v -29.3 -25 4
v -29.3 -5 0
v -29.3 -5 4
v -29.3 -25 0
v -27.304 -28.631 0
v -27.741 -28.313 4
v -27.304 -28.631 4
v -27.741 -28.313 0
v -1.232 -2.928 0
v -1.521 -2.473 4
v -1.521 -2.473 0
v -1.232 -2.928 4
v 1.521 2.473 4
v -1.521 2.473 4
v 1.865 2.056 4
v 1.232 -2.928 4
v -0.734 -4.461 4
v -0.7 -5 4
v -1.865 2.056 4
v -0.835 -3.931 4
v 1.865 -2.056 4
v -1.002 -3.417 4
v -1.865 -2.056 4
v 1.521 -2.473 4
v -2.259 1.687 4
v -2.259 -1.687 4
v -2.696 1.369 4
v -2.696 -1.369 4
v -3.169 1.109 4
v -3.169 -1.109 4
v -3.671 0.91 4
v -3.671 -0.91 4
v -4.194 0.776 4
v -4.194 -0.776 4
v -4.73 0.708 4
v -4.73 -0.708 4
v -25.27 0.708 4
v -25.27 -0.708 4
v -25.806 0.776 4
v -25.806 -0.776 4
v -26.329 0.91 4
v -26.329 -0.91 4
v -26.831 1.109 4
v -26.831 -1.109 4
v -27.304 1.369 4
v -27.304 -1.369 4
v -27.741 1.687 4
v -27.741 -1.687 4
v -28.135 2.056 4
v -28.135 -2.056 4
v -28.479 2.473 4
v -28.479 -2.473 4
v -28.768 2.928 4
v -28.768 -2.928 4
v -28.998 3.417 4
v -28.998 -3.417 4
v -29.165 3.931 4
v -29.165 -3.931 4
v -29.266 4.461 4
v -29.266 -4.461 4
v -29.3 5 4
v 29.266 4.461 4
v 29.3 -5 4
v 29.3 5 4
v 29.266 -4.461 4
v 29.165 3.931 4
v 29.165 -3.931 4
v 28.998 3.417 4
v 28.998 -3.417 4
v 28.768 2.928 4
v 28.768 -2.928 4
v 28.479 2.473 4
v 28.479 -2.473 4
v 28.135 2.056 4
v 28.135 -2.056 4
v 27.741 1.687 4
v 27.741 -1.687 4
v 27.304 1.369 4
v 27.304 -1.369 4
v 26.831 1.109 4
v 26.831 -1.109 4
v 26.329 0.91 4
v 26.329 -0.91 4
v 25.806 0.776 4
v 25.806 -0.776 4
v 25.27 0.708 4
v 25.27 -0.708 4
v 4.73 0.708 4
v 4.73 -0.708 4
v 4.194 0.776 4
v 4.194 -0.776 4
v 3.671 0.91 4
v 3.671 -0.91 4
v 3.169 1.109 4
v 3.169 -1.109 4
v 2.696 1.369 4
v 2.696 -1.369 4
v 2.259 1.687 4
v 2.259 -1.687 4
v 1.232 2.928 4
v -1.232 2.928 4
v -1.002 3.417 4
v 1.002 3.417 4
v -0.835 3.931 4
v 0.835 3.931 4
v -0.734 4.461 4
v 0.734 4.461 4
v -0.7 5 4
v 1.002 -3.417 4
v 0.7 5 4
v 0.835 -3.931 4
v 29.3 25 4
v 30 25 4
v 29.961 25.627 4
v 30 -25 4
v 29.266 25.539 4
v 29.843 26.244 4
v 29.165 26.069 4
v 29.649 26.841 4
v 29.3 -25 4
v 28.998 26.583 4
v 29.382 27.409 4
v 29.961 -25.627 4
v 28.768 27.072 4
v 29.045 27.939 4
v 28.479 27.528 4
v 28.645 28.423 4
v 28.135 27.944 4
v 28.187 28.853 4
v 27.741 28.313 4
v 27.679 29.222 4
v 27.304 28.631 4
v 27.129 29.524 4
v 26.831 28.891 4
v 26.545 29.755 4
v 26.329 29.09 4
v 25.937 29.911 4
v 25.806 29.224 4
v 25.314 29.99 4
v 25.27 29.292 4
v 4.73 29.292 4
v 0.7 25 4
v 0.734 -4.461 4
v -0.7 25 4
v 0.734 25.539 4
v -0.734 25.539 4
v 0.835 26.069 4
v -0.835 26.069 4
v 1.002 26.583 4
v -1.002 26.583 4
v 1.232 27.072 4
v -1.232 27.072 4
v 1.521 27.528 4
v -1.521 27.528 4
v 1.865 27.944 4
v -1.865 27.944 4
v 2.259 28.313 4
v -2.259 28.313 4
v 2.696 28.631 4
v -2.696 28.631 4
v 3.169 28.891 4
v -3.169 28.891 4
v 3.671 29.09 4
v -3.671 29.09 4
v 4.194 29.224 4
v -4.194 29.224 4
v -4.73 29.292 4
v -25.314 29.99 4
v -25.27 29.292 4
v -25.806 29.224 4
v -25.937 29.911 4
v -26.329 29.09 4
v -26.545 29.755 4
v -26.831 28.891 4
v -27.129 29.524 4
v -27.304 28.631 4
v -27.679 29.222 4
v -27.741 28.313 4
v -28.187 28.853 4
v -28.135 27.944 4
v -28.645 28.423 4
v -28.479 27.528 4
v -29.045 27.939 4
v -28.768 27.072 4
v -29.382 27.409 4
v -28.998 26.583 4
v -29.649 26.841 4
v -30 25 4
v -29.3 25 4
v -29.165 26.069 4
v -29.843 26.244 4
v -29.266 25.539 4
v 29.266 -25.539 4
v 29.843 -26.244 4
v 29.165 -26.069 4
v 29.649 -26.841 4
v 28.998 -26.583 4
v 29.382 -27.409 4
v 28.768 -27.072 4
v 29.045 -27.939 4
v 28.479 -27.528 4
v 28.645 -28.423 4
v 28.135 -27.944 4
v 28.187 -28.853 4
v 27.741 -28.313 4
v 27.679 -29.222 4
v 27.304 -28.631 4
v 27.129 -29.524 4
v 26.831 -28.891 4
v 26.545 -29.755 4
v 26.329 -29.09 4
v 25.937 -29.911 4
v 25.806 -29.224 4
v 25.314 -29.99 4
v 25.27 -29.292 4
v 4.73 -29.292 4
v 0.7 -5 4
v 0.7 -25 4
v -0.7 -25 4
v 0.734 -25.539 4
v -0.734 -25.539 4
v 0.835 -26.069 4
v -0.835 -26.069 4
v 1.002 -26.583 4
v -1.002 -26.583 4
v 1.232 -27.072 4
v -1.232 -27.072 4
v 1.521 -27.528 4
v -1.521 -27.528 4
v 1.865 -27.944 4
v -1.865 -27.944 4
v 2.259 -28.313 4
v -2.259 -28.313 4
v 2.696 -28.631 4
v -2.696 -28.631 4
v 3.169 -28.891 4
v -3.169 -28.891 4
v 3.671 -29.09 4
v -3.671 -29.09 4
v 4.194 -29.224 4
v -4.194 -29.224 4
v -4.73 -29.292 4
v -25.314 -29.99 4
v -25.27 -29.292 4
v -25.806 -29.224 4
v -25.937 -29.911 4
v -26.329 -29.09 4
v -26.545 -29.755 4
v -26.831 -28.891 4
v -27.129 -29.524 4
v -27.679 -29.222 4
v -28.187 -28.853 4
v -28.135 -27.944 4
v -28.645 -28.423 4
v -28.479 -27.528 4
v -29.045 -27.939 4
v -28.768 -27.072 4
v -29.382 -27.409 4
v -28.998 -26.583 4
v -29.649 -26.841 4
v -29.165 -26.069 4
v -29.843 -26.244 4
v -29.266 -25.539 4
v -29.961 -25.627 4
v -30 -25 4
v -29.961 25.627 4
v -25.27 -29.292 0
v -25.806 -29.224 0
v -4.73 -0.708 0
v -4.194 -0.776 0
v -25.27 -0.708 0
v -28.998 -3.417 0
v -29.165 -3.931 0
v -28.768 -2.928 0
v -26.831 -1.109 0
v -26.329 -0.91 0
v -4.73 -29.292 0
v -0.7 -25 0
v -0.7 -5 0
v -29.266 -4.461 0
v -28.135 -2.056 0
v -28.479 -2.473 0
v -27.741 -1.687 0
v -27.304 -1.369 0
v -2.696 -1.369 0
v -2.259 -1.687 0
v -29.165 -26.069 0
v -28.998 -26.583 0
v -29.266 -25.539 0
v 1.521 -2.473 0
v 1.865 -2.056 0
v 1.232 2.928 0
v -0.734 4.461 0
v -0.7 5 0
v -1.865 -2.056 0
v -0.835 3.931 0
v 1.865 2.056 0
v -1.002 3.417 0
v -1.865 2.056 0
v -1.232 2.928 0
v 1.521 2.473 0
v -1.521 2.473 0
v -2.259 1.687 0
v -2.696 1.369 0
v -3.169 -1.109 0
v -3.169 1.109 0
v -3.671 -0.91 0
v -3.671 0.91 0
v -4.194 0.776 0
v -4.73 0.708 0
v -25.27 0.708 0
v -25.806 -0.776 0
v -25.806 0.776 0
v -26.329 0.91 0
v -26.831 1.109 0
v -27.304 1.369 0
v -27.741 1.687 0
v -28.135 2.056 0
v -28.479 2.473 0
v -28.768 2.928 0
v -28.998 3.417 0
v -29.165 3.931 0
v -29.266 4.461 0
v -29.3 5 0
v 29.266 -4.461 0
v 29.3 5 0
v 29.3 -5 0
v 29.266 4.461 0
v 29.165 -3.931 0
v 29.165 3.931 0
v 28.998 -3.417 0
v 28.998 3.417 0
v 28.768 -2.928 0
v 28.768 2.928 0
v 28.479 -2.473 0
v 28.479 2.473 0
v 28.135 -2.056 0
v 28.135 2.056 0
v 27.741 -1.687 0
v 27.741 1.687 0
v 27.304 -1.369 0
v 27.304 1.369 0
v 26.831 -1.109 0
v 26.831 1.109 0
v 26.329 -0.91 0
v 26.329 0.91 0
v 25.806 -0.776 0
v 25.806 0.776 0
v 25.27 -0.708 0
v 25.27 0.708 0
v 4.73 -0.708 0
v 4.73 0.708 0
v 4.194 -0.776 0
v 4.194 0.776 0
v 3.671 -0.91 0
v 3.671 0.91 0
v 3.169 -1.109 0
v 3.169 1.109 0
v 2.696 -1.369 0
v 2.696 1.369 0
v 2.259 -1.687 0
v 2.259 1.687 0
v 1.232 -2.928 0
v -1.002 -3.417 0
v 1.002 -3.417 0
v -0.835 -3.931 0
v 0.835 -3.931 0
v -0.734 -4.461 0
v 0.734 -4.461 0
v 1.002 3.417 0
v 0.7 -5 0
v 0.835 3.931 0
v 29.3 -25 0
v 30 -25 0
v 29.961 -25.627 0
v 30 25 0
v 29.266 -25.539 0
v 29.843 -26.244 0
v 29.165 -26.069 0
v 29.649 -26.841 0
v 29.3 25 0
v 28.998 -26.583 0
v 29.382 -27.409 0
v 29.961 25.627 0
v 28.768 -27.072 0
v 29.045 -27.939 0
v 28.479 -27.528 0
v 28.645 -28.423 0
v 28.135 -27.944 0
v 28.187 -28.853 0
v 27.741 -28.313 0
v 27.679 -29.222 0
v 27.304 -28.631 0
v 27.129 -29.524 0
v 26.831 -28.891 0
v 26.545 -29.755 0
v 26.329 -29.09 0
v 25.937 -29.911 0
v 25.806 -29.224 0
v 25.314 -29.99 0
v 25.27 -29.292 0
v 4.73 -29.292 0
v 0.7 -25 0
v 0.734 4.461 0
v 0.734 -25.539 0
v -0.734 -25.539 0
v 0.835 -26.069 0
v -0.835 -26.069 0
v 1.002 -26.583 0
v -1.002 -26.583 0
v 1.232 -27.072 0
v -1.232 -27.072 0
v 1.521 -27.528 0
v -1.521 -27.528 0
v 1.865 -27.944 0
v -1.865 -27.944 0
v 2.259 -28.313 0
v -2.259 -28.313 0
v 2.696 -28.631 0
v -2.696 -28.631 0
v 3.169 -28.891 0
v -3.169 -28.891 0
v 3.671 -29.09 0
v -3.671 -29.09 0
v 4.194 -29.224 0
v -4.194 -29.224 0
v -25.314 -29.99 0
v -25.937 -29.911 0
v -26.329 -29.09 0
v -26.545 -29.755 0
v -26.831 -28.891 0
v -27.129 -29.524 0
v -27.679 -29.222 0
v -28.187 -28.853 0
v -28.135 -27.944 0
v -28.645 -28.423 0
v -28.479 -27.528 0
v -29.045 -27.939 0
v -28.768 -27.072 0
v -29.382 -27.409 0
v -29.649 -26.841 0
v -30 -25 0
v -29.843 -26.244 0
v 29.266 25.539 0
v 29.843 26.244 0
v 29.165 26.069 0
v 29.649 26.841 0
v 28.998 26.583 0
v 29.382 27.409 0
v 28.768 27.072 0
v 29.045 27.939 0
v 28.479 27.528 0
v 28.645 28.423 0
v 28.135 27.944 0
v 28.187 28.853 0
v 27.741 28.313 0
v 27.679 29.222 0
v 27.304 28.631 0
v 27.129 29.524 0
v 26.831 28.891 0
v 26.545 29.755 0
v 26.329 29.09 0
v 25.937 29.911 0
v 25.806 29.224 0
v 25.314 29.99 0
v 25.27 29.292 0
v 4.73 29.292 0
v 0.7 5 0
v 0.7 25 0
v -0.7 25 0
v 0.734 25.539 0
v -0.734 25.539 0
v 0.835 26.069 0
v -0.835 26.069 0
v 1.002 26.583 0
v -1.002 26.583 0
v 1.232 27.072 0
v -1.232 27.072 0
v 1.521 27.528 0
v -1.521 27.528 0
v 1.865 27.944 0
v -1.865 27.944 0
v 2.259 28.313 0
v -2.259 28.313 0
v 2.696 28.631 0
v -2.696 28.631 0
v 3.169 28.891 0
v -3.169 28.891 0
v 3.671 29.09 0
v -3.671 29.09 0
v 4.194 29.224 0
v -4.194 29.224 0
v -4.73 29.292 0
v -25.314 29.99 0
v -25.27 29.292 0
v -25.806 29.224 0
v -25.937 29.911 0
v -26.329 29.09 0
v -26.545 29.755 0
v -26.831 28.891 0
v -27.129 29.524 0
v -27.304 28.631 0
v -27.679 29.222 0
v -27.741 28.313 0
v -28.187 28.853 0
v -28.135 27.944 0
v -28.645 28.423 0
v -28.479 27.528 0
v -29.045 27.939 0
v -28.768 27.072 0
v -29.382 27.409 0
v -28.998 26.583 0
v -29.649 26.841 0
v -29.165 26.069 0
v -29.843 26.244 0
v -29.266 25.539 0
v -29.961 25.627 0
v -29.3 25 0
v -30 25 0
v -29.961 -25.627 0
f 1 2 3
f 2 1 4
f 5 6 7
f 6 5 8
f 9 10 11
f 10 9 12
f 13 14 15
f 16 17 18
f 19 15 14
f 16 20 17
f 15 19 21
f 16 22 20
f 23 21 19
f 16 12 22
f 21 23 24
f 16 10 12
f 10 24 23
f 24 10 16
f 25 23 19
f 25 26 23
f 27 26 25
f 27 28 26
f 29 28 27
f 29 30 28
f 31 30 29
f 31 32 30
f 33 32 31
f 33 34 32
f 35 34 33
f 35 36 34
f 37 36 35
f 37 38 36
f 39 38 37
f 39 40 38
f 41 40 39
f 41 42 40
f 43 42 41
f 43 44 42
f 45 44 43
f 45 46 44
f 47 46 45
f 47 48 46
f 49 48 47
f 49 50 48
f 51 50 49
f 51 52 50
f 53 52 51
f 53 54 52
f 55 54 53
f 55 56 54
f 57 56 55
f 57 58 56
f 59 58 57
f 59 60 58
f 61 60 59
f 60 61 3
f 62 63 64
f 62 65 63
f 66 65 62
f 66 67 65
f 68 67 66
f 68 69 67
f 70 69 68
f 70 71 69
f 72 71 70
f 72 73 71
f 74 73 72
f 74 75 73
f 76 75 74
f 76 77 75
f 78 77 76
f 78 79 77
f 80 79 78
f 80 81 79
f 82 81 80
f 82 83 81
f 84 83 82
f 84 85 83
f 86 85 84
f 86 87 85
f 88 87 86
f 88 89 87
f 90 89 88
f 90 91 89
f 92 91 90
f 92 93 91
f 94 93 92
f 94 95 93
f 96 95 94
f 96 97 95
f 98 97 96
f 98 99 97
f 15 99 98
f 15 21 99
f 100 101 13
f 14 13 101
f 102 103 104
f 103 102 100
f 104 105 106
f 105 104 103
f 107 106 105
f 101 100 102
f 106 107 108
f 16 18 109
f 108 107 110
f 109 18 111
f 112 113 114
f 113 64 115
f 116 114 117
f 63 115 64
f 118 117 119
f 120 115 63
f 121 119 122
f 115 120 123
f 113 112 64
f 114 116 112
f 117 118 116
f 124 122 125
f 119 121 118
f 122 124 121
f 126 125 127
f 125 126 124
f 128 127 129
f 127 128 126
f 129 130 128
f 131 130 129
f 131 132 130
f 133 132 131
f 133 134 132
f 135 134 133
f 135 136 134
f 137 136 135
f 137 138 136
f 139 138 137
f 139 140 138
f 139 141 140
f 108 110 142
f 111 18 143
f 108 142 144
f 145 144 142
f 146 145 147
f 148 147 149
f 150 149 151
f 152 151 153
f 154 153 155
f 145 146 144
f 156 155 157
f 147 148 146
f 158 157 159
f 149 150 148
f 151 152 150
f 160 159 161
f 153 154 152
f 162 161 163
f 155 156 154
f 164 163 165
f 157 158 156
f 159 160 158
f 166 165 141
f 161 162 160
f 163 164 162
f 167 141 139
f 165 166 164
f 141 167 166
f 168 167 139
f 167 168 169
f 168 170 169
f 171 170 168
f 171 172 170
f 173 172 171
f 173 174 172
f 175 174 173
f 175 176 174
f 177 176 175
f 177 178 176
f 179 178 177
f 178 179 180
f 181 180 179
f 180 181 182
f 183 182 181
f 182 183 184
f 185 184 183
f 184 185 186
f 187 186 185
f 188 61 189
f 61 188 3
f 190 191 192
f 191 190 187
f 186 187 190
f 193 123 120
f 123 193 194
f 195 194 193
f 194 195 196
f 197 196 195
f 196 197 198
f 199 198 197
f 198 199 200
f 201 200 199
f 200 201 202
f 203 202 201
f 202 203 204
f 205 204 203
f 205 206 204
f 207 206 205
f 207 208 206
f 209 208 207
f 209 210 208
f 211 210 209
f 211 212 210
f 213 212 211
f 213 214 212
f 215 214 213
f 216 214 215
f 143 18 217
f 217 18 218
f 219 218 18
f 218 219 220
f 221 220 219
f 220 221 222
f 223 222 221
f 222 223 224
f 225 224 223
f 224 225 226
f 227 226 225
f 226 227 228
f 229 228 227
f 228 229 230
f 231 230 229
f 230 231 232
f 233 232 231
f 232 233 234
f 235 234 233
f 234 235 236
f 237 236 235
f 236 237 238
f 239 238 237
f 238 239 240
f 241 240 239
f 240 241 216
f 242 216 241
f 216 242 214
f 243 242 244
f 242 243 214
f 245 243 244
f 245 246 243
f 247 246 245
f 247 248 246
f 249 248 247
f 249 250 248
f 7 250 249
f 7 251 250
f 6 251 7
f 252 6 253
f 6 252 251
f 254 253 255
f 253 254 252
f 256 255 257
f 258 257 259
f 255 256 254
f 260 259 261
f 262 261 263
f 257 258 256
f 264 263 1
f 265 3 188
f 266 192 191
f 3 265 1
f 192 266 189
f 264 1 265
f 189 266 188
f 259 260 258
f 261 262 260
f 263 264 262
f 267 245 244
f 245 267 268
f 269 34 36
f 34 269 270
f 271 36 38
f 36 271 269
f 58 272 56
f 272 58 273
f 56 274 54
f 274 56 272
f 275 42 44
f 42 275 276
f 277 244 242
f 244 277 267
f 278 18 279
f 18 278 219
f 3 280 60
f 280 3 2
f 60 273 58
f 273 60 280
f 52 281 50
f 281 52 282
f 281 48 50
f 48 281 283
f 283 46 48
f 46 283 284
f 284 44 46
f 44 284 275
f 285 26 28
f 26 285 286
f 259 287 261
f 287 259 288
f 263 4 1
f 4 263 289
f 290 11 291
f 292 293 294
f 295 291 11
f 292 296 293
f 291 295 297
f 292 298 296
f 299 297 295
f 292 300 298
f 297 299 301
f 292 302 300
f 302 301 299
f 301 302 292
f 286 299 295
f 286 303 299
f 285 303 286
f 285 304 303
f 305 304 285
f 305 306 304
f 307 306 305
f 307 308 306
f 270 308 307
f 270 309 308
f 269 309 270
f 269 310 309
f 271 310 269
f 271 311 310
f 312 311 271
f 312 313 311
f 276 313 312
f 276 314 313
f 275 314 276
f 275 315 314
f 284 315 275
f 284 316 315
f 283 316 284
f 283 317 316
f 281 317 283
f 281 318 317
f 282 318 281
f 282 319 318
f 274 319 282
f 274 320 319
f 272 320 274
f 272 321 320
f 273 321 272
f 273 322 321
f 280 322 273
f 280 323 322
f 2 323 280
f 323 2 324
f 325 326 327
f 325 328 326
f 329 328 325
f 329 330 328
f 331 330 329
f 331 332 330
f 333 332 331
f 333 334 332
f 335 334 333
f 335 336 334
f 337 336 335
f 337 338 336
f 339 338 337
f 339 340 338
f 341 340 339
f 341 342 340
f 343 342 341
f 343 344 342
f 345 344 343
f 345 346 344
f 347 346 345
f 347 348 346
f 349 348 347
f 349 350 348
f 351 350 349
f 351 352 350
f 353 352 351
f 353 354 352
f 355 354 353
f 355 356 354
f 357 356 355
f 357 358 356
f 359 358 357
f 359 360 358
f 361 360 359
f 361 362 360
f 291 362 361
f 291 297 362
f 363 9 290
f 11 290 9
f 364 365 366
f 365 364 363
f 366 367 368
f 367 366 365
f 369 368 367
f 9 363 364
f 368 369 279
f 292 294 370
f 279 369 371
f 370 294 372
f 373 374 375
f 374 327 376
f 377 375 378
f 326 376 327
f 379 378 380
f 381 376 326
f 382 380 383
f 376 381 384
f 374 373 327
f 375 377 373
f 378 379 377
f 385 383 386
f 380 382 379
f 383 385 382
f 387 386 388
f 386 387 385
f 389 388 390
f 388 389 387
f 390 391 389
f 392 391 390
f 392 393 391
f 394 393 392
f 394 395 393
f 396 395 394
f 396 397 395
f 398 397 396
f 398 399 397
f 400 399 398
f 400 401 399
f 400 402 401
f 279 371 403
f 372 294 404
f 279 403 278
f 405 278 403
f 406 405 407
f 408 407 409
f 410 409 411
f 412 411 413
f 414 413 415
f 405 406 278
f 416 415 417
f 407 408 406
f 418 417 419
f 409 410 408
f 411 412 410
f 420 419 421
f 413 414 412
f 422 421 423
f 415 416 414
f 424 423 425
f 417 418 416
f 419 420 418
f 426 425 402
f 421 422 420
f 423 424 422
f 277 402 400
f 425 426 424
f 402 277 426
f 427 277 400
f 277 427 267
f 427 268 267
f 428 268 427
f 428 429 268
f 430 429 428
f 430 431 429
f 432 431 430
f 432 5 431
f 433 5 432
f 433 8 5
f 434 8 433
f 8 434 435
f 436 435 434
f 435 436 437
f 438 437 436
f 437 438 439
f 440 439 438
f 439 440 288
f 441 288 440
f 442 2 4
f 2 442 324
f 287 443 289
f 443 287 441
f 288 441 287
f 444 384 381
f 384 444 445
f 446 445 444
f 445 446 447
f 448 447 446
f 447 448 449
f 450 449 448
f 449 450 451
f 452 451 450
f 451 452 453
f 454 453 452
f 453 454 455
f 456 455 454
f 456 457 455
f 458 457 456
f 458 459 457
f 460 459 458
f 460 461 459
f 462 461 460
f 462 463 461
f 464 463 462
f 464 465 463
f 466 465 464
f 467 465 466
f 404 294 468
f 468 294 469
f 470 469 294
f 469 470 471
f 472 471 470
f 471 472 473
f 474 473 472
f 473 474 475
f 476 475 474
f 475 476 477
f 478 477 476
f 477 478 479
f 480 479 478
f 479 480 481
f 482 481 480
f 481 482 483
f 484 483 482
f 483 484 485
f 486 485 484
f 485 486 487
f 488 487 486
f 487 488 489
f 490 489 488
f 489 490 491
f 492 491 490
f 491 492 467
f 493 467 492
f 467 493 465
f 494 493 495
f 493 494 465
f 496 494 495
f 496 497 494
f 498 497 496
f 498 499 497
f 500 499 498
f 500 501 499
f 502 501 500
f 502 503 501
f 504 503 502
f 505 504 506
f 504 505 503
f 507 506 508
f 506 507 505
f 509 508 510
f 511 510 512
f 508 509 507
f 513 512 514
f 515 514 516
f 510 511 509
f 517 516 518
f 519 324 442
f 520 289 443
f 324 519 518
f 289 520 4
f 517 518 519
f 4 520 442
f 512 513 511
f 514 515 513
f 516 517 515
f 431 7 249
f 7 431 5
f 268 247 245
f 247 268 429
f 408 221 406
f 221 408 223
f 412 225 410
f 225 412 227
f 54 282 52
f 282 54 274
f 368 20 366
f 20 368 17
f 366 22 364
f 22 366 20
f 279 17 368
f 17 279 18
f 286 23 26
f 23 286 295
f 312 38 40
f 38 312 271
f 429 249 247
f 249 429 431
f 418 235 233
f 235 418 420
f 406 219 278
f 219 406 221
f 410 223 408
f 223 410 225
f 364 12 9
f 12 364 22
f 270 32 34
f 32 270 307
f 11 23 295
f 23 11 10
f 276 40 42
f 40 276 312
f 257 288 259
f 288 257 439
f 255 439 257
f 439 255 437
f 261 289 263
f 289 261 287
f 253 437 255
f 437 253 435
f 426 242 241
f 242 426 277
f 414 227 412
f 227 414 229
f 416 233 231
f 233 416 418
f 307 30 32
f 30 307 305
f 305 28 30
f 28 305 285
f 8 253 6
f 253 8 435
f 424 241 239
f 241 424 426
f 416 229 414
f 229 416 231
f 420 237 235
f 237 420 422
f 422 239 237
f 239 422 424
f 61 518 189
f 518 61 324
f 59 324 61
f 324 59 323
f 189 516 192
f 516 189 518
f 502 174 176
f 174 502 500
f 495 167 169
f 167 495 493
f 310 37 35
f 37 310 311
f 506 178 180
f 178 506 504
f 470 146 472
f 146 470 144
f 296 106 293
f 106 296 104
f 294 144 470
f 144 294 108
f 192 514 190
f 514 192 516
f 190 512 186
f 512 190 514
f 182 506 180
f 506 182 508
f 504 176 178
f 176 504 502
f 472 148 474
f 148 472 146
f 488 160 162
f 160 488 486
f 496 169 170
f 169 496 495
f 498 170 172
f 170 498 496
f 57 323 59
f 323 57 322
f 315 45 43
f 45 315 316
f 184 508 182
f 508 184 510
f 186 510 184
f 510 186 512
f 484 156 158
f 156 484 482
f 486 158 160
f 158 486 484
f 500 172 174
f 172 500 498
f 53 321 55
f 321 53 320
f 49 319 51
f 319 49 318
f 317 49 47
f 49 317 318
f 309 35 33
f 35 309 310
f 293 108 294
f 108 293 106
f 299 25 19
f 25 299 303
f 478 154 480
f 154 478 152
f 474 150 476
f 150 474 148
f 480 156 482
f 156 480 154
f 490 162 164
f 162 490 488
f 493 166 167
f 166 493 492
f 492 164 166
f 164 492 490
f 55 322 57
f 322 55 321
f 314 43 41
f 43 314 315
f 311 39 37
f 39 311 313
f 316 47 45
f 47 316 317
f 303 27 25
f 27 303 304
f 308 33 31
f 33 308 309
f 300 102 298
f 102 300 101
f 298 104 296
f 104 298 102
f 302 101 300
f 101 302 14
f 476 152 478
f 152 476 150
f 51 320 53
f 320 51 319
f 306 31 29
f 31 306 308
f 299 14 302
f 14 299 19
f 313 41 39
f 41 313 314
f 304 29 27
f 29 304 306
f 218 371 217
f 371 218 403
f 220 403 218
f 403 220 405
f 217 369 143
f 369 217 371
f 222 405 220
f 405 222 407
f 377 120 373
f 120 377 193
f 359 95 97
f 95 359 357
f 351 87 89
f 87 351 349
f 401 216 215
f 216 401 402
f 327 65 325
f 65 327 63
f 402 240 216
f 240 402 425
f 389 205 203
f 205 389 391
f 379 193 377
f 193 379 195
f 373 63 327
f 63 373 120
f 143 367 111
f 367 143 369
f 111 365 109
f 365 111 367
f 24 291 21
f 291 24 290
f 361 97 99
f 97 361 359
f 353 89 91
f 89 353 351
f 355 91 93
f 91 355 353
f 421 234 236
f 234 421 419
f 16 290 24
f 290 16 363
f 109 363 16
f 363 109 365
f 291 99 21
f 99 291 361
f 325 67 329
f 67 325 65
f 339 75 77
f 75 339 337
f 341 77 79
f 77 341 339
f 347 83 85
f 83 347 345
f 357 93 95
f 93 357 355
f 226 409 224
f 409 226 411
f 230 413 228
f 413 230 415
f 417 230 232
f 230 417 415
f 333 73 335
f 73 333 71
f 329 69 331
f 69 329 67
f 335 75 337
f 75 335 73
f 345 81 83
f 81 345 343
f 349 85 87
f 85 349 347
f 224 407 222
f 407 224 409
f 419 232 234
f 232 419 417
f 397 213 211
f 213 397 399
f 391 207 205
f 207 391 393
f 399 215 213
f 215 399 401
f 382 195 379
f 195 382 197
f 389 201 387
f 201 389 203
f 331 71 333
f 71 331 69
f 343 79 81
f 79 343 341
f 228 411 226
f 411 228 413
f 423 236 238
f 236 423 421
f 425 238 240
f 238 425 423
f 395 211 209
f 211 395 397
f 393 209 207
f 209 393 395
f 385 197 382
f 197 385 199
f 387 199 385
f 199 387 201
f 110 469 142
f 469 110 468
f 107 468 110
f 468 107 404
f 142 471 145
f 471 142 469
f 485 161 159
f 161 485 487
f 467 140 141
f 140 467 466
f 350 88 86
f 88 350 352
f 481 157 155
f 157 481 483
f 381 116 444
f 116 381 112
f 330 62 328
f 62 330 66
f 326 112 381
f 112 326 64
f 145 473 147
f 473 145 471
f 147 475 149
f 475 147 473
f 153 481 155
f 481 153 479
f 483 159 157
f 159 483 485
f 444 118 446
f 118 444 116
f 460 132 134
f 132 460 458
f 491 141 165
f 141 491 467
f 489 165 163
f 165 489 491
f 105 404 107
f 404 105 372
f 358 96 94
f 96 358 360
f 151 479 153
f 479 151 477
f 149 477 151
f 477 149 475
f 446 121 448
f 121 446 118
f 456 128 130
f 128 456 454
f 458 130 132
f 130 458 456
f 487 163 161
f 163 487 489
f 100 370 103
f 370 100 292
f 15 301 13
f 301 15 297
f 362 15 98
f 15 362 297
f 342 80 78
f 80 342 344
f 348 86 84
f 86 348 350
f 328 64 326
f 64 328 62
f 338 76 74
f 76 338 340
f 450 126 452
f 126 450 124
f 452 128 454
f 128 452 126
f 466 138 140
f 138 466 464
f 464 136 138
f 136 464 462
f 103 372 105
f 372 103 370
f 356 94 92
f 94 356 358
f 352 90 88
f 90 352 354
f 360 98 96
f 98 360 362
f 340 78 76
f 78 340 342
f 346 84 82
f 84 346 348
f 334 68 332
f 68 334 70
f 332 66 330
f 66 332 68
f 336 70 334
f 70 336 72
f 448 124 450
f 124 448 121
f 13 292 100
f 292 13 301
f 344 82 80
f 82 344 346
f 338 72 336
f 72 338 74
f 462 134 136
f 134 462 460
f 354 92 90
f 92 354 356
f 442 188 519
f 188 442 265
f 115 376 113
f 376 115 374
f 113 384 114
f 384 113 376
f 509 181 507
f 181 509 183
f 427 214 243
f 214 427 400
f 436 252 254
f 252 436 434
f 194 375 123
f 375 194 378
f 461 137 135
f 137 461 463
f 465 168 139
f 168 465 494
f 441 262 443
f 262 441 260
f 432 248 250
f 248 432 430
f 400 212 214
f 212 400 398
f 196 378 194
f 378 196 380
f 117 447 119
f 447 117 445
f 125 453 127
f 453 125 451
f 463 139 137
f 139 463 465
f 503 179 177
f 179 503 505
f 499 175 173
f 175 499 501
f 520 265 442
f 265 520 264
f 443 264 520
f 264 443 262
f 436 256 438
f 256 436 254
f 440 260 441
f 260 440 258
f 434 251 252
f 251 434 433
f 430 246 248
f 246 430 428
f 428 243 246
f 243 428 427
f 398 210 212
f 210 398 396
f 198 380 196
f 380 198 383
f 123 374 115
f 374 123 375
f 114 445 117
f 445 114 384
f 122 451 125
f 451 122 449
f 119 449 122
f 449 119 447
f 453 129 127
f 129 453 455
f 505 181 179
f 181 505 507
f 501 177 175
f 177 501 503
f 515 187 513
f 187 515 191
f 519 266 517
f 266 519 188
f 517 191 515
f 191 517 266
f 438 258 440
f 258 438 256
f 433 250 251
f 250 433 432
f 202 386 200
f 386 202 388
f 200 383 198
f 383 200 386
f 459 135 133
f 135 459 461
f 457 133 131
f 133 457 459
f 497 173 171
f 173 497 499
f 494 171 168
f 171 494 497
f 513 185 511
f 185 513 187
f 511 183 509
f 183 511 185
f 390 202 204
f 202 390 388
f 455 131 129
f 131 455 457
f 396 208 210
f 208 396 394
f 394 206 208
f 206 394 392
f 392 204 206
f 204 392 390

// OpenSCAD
$fn = 50;


difference() {
	union() {
		hull() {
			translate(v = [-25.0000000000, 25.0000000000, 0]) {
				cylinder(h = 4, r = 5);
			}
			translate(v = [25.0000000000, 25.0000000000, 0]) {
				cylinder(h = 4, r = 5);
			}
			translate(v = [-25.0000000000, -25.0000000000, 0]) {
				cylinder(h = 4, r = 5);
			}
			translate(v = [25.0000000000, -25.0000000000, 0]) {
				cylinder(h = 4, r = 5);
			}
		}
	}
	union() {
		translate(v = [-15.0000000000, -15.0000000000, 0]) {
			hull() {
				translate(v = [-10.0000000000, 10.0000000000, 0]) {
					cylinder(h = 4, r = 4.3000000000);
				}
				translate(v = [10.0000000000, 10.0000000000, 0]) {
					cylinder(h = 4, r = 4.3000000000);
				}
				translate(v = [-10.0000000000, -10.0000000000, 0]) {
					cylinder(h = 4, r = 4.3000000000);
				}
				translate(v = [10.0000000000, -10.0000000000, 0]) {
					cylinder(h = 4, r = 4.3000000000);
				}
			}
		}
		translate(v = [-15.0000000000, 15.0000000000, 0]) {
			hull() {
				translate(v = [-10.0000000000, 10.0000000000, 0]) {
					cylinder(h = 4, r = 4.3000000000);
				}
				translate(v = [10.0000000000, 10.0000000000, 0]) {
					cylinder(h = 4, r = 4.3000000000);
				}
				translate(v = [-10.0000000000, -10.0000000000, 0]) {
					cylinder(h = 4, r = 4.3000000000);
				}
				translate(v = [10.0000000000, -10.0000000000, 0]) {
					cylinder(h = 4, r = 4.3000000000);
				}
			}
		}
		translate(v = [15.0000000000, -15.0000000000, 0]) {
			hull() {
				translate(v = [-10.0000000000, 10.0000000000, 0]) {
					cylinder(h = 4, r = 4.3000000000);
				}
				translate(v = [10.0000000000, 10.0000000000, 0]) {
					cylinder(h = 4, r = 4.3000000000);
				}
				translate(v = [-10.0000000000, -10.0000000000, 0]) {
					cylinder(h = 4, r = 4.3000000000);
				}
				translate(v = [10.0000000000, -10.0000000000, 0]) {
					cylinder(h = 4, r = 4.3000000000);
				}
			}
		}
		translate(v = [15.0000000000, 15.0000000000, 0]) {
			hull() {
				translate(v = [-10.0000000000, 10.0000000000, 0]) {
					cylinder(h = 4, r = 4.3000000000);
				}
				translate(v = [10.0000000000, 10.0000000000, 0]) {
					cylinder(h = 4, r = 4.3000000000);
				}
				translate(v = [-10.0000000000, -10.0000000000, 0]) {
					cylinder(h = 4, r = 4.3000000000);
				}
				translate(v = [10.0000000000, -10.0000000000, 0]) {
					cylinder(h = 4, r = 4.3000000000);
				}
			}
		}
	}
}
